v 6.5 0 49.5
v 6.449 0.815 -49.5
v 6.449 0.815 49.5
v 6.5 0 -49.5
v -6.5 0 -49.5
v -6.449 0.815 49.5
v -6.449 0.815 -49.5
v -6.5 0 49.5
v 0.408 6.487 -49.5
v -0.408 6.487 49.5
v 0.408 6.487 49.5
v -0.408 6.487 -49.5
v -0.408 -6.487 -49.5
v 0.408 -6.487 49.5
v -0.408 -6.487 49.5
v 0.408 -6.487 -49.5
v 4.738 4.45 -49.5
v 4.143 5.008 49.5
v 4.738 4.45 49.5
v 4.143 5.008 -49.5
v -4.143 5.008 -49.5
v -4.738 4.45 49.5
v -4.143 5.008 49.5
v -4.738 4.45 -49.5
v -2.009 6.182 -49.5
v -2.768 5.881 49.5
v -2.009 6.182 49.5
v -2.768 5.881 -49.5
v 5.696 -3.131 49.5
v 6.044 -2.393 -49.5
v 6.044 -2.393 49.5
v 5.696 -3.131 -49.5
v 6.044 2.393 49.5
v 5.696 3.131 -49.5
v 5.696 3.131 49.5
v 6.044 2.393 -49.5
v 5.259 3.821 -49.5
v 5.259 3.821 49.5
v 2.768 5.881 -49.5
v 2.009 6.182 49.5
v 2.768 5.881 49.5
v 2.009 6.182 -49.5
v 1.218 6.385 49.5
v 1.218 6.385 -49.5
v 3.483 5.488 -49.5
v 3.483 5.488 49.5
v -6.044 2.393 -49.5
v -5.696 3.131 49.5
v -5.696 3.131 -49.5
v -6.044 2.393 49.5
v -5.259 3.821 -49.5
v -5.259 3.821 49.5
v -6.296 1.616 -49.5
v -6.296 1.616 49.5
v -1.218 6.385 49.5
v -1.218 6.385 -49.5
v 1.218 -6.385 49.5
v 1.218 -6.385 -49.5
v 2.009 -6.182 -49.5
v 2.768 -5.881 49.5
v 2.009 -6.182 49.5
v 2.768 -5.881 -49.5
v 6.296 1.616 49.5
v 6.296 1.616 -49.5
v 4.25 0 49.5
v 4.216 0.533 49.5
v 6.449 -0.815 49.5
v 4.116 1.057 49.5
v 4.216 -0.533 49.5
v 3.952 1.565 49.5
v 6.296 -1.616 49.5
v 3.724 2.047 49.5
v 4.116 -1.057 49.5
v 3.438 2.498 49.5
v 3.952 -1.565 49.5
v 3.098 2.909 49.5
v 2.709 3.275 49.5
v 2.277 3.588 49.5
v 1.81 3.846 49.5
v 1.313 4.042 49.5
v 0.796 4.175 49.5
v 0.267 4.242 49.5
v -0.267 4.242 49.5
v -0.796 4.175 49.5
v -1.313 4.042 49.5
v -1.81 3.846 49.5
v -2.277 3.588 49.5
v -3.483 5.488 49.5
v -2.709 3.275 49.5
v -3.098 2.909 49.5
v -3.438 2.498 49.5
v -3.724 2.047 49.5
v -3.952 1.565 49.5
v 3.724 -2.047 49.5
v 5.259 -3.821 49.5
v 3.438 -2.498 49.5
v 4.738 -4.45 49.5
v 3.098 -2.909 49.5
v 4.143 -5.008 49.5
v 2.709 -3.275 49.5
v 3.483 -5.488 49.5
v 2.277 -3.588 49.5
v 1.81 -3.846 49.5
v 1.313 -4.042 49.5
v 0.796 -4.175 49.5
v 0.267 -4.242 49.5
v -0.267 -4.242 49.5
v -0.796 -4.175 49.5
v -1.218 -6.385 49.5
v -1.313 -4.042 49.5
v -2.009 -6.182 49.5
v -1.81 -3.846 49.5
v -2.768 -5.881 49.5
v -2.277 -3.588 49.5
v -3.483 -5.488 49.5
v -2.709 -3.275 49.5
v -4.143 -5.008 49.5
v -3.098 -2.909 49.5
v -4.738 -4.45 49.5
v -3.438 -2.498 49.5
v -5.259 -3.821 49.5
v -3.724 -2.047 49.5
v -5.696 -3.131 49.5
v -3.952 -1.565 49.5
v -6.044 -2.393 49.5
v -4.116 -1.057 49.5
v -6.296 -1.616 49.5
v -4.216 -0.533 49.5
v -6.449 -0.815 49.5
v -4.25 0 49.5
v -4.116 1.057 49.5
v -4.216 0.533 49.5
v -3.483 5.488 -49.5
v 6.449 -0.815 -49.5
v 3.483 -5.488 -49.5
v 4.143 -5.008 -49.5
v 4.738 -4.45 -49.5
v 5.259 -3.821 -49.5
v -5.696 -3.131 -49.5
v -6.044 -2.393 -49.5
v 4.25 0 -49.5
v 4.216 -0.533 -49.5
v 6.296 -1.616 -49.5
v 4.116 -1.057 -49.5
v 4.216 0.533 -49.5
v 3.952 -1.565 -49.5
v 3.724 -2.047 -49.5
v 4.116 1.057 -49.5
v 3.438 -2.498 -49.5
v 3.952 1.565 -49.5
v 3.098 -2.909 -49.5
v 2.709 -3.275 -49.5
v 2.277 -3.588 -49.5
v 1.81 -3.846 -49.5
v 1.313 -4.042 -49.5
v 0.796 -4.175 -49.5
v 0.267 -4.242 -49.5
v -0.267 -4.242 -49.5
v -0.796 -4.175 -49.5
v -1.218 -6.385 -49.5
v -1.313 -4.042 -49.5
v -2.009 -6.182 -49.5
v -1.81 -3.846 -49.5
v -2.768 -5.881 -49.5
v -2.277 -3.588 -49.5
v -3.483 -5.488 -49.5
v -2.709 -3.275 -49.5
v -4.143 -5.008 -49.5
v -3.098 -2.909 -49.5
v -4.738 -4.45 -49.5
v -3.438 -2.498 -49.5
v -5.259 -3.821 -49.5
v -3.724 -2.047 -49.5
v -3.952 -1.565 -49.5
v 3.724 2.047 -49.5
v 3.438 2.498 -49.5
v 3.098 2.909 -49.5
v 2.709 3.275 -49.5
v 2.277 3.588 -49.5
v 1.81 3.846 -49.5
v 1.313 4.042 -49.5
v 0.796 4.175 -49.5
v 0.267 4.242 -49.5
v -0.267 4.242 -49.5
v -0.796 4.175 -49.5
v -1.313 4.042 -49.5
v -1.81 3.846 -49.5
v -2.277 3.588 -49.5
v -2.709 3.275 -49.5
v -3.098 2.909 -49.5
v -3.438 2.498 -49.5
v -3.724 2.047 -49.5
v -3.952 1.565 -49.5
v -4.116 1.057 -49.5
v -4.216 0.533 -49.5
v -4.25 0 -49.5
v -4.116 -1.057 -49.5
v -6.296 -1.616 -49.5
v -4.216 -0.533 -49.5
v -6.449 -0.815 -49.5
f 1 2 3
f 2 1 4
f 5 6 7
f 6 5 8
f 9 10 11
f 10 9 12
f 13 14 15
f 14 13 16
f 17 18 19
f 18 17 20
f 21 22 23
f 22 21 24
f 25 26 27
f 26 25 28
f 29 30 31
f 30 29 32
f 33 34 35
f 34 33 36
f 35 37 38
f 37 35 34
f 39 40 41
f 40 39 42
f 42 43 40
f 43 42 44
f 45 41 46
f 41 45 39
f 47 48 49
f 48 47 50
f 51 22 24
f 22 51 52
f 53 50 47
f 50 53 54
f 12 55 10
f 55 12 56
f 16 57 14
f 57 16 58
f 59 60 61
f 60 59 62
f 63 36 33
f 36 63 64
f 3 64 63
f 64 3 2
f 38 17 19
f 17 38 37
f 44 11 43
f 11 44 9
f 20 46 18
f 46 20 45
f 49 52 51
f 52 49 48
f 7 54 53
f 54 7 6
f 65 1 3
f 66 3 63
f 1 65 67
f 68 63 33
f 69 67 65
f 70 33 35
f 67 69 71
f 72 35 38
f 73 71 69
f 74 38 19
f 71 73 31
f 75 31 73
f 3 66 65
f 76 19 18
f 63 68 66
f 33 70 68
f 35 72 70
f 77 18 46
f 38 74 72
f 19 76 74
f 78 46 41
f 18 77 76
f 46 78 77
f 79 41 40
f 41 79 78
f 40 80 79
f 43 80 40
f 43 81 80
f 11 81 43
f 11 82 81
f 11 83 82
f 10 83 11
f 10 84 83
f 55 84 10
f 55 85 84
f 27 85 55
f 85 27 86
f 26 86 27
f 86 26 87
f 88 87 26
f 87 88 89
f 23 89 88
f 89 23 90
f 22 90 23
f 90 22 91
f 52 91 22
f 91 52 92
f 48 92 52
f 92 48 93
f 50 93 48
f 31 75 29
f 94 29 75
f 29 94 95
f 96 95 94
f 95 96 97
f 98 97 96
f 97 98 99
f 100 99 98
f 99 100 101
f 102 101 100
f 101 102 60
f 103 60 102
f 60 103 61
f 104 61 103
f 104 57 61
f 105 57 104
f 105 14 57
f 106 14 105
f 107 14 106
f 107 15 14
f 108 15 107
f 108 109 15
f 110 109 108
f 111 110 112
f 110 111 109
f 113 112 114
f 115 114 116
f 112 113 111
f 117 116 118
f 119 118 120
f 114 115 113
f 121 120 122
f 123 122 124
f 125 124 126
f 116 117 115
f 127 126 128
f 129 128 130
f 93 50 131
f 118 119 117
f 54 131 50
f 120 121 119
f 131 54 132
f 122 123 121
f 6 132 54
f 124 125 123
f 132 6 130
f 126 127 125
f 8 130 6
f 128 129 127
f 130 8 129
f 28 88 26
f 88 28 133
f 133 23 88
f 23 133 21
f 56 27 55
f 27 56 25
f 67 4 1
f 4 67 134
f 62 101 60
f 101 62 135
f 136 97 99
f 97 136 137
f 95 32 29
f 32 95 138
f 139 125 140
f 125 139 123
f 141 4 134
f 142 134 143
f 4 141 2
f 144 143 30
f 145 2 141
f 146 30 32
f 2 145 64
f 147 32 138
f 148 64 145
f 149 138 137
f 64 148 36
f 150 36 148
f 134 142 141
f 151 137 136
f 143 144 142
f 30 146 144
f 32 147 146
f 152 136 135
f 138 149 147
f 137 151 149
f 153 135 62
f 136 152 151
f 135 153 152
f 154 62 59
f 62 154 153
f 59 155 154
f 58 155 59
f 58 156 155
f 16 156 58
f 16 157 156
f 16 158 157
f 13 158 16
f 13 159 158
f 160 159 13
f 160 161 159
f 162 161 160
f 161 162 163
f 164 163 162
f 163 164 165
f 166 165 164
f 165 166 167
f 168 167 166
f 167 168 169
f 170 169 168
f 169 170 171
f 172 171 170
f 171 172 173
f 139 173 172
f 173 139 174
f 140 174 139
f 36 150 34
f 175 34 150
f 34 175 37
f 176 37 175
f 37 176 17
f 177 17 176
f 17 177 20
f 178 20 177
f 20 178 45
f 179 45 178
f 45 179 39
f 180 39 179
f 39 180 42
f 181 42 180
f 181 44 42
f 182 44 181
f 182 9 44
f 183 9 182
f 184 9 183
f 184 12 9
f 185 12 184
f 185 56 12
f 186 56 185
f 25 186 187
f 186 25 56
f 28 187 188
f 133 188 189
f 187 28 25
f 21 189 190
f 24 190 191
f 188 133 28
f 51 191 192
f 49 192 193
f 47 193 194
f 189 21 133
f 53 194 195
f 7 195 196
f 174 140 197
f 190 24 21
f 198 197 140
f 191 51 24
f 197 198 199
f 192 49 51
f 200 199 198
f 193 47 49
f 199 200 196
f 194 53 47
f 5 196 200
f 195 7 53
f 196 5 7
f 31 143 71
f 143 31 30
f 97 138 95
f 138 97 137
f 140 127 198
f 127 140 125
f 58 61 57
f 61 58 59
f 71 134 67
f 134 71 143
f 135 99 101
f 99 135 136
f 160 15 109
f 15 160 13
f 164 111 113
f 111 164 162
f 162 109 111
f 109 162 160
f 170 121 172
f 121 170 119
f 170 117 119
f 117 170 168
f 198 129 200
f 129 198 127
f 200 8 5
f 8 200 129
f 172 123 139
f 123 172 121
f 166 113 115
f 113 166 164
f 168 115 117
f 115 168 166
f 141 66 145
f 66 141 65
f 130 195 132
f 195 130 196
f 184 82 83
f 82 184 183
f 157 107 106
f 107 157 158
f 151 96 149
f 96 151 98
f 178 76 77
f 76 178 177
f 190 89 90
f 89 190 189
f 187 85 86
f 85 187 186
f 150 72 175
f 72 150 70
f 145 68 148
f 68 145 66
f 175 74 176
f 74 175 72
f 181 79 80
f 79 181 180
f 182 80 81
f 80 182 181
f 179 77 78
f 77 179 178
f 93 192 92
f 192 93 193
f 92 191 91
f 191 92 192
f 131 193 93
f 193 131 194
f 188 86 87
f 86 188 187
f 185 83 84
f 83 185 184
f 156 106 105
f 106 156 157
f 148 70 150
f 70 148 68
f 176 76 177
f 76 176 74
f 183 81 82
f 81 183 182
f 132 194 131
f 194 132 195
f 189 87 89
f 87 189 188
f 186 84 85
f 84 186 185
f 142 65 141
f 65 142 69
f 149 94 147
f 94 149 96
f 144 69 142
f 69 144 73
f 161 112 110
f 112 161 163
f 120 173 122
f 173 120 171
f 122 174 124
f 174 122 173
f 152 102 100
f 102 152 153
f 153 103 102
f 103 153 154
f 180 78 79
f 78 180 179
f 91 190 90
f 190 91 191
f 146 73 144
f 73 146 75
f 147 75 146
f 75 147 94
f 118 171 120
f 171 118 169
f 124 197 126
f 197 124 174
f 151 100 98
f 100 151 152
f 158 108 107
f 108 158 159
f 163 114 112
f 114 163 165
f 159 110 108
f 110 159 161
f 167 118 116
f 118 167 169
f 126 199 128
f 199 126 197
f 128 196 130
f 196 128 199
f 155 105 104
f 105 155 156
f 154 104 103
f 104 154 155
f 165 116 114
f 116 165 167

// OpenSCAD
$fn = 50;


difference() {
	union() {
		translate(v = [0, 0, -49.5000000000]) {
			cylinder(h = 99, r = 6.5000000000);
		}
	}
	union() {
		translate(v = [0, 0, -100.0000000000]) {
			cylinder(h = 200, r = 4.2500000000);
		}
	}
}
